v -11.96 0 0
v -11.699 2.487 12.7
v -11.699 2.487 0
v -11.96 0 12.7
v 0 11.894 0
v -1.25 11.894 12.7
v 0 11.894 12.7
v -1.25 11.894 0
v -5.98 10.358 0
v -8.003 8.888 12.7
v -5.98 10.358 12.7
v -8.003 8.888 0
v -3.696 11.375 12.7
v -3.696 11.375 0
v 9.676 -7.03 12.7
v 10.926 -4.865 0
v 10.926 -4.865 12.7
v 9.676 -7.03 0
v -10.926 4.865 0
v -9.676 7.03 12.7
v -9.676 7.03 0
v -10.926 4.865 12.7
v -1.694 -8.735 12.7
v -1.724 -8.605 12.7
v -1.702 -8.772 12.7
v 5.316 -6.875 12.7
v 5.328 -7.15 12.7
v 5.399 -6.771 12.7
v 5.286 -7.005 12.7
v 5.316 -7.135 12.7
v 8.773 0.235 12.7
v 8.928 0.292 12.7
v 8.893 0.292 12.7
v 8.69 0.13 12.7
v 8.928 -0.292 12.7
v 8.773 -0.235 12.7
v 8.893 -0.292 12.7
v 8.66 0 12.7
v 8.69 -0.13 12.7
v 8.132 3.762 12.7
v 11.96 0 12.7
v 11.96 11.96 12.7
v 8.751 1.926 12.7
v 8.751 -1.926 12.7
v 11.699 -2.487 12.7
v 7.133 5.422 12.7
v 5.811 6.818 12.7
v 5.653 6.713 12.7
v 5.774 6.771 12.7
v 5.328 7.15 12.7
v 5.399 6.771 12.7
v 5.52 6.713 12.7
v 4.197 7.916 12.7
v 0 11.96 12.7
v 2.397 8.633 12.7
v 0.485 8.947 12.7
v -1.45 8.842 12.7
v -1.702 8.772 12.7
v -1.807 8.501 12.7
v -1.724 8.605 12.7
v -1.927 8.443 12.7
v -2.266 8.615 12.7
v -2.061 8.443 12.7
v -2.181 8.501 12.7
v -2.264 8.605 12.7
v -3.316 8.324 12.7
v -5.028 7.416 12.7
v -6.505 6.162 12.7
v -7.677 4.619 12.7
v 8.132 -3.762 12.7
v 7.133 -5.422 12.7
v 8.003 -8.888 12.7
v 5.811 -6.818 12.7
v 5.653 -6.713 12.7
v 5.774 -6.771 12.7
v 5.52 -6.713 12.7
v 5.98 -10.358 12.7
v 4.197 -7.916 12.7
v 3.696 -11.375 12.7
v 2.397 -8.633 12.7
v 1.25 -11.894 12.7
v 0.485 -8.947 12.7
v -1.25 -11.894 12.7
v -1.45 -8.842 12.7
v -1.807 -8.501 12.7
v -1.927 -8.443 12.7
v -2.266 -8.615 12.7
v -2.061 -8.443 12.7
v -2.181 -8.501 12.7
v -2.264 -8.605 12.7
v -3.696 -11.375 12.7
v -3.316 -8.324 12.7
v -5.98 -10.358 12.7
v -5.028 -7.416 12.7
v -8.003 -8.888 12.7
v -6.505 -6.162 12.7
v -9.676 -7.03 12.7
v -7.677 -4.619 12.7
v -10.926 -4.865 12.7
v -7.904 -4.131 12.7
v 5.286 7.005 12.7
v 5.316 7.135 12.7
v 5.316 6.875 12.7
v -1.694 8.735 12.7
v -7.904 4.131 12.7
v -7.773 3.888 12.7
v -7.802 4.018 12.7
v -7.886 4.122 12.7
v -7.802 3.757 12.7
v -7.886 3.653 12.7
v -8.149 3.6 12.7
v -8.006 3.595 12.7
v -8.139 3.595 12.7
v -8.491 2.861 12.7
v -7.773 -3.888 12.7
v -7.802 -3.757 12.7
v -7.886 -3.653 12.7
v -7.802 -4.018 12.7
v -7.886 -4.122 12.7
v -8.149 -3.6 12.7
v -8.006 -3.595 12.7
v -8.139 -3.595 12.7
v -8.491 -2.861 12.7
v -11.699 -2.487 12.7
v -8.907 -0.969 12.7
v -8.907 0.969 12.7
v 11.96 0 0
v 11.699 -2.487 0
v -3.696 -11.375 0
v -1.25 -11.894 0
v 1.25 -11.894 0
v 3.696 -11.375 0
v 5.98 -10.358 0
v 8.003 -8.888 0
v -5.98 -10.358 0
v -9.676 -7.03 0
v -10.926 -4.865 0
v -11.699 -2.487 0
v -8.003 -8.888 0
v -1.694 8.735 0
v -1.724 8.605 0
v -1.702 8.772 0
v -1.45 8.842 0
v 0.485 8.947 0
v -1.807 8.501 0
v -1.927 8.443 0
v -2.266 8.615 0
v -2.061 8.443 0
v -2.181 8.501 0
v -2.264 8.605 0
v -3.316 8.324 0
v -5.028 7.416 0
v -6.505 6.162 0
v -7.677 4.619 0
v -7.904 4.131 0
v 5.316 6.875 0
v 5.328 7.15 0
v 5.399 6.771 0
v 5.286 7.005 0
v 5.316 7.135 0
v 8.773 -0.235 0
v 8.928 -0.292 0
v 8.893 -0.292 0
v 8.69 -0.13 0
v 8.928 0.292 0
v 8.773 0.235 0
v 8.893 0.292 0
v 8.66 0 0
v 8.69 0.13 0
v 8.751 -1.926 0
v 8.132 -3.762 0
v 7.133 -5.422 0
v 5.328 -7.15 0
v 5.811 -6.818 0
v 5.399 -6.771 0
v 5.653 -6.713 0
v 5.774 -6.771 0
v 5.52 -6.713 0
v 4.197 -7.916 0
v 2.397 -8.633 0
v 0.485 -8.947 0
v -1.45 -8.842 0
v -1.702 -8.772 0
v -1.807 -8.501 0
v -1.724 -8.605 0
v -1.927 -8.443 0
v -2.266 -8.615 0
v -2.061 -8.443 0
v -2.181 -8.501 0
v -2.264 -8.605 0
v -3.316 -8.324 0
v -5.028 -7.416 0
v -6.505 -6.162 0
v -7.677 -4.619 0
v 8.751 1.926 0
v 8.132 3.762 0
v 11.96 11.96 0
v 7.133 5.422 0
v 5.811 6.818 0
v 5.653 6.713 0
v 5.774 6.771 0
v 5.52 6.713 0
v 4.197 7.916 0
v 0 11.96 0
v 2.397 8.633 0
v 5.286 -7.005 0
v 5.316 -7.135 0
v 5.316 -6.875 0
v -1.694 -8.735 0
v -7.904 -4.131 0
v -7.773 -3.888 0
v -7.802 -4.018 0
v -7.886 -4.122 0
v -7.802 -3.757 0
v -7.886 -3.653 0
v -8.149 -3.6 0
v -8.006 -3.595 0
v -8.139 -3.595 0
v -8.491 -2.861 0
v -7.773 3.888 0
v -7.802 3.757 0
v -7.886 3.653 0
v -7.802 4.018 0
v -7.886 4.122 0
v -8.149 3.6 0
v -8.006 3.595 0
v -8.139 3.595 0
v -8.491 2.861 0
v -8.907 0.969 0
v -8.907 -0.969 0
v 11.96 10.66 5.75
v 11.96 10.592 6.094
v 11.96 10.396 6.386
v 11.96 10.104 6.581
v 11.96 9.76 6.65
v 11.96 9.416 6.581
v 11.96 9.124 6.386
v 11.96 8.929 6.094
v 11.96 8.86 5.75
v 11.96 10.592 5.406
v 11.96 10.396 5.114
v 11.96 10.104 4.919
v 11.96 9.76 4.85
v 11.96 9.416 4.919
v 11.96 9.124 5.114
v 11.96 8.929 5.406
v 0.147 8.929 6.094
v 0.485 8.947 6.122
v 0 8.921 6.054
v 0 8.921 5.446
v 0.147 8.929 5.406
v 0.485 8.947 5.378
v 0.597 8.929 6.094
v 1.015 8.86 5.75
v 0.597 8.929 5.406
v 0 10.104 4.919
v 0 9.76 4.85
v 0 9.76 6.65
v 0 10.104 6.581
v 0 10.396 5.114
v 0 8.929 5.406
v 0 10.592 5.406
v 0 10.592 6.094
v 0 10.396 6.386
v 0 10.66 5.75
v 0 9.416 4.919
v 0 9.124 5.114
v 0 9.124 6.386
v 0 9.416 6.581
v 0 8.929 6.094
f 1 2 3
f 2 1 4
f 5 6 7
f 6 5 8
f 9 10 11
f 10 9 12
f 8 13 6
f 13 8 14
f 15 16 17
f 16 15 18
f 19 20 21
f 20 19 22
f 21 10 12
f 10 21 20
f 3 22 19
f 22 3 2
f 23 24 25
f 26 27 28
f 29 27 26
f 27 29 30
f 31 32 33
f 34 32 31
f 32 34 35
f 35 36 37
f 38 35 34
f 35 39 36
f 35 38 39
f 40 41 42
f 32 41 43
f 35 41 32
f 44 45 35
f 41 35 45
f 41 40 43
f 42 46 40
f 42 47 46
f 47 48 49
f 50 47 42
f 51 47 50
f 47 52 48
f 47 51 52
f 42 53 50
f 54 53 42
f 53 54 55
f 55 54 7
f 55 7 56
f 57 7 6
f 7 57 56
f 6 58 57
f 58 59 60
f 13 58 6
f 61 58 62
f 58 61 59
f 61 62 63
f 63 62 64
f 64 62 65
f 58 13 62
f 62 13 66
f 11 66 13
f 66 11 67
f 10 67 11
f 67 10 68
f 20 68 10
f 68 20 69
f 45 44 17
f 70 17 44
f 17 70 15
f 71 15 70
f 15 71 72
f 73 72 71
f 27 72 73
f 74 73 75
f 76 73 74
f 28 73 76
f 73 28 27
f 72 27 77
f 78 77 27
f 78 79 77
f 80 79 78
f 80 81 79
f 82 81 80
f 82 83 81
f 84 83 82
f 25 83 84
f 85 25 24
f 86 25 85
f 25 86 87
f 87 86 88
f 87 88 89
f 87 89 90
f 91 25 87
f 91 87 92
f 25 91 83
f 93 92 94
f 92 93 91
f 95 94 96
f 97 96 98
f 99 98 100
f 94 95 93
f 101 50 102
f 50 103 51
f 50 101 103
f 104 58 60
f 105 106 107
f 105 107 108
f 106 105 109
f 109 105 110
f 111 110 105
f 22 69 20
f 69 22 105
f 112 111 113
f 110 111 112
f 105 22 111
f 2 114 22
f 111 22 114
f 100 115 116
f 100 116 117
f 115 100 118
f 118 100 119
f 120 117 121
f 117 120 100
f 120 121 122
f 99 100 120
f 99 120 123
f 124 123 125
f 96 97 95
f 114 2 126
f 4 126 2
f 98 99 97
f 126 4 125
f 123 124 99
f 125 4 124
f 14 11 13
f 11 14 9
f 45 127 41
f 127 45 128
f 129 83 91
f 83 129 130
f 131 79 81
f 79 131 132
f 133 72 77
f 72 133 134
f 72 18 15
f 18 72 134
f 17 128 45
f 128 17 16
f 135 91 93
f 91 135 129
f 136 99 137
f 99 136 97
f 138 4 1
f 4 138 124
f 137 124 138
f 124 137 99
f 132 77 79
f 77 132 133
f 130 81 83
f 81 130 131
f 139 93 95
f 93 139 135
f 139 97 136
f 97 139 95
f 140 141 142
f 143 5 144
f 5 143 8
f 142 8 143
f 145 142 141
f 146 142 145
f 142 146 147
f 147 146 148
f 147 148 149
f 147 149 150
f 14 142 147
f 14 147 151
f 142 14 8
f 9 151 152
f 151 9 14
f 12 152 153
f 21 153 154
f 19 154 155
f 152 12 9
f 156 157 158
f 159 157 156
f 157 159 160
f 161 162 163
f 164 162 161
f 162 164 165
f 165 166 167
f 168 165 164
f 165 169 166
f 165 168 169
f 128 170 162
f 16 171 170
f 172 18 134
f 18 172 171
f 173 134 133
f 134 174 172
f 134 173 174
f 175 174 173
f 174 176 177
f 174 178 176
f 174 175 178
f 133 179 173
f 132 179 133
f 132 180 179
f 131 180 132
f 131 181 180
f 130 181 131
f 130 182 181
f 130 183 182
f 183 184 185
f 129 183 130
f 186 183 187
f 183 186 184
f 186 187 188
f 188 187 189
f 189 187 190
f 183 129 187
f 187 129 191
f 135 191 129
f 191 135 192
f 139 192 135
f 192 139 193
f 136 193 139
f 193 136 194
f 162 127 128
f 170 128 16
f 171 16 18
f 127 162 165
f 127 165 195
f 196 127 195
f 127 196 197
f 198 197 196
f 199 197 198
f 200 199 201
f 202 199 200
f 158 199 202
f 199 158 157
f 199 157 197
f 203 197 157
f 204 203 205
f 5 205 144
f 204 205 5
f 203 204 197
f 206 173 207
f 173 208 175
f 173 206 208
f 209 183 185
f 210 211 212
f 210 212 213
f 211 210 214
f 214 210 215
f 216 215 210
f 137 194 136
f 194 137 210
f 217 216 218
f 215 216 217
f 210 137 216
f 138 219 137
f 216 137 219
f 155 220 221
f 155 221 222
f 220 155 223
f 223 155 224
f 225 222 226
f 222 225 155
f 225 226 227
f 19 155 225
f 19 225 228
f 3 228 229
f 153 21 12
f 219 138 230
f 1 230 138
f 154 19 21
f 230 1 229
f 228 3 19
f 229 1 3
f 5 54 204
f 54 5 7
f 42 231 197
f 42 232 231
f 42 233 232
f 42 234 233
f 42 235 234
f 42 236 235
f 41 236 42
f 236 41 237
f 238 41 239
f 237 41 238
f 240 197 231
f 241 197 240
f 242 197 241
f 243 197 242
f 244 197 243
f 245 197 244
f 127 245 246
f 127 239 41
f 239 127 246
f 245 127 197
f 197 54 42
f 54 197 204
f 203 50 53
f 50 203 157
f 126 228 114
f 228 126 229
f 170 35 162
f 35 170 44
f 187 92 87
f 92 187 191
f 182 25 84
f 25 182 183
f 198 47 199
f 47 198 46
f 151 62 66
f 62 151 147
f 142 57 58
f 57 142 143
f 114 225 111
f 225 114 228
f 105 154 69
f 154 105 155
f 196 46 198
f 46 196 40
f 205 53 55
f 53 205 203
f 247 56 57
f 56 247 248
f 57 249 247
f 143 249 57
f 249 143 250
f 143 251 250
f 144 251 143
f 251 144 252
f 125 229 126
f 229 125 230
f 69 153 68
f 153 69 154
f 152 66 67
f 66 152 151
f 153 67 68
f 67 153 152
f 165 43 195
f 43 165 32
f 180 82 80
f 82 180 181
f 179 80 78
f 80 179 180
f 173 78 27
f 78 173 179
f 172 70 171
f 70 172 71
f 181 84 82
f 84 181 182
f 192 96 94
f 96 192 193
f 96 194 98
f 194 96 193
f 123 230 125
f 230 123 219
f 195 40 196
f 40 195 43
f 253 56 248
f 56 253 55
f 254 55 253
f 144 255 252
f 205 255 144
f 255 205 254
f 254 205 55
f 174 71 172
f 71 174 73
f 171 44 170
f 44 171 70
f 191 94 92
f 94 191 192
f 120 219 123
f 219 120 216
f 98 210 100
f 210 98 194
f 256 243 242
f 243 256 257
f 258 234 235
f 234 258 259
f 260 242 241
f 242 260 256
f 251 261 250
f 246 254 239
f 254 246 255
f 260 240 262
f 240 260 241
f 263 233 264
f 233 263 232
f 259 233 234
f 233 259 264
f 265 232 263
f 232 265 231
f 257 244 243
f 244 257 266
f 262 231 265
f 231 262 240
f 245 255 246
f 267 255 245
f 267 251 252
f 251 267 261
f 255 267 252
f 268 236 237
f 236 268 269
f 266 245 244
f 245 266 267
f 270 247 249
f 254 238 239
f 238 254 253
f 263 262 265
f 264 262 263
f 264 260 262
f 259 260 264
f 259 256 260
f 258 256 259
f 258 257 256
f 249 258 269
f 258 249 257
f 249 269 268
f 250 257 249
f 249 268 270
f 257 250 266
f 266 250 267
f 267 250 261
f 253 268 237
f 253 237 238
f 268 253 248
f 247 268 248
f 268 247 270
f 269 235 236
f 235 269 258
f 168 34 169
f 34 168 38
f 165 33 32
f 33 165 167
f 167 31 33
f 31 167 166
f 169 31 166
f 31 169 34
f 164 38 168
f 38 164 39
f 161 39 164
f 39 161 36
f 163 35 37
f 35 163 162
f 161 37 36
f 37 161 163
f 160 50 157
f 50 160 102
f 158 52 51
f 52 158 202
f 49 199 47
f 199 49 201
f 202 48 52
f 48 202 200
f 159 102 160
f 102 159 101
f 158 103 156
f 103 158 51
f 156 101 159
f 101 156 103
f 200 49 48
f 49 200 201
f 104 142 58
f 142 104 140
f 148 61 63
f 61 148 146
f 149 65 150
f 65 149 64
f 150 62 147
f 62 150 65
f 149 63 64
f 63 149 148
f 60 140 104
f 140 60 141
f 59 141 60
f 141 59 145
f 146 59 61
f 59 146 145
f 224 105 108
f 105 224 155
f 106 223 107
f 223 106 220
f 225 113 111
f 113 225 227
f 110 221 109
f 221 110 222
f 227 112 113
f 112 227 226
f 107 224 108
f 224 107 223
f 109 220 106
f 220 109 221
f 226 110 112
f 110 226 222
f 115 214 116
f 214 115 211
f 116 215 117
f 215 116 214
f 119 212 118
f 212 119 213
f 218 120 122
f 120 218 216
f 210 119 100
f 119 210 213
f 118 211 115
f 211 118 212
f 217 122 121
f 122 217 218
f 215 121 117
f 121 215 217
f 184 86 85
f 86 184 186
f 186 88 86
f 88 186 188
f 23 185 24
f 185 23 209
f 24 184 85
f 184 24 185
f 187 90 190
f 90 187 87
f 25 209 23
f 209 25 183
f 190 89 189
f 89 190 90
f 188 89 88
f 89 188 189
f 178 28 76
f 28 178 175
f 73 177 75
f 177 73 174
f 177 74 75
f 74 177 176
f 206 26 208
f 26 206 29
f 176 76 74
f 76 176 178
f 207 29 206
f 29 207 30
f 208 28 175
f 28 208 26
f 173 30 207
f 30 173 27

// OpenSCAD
mm=1;
in=25.4*mm;


slop = 0.3*mm;
pen_rad = 8.66*mm+slop;
pen_height = 0.5*in;

wall = 3*mm;
eps=0.01*mm;

num_ribs=7;

motor_hole_rad = 0.9*mm;
motor_hole_y = pen_rad+wall-2.2*mm;
motor_hole_z = 5.75*mm;

module pen_tube() {
    union(){
        difference(){
            union() {
                cylinder(r=pen_rad+wall, h=pen_height);
                cube([pen_rad+wall, pen_rad+wall, pen_height]);

            }
            union() {
                translate([0,0,-eps])
                cylinder(r=pen_rad, h=pen_height+2*eps);
                
                                
                color("red")
                translate([0,motor_hole_y, motor_hole_z])
                rotate([0,90,0])
                cylinder(r=motor_hole_rad, h=2*pen_height,  $fn=16);
            }
        }
        for(i=[0:num_ribs-1]){
            rotate(360/num_ribs*i)
            translate([pen_rad,0,0])
            cylinder(r=slop,h=pen_height,$fn=2*num_ribs);
        }
    }
}

pen_tube();
